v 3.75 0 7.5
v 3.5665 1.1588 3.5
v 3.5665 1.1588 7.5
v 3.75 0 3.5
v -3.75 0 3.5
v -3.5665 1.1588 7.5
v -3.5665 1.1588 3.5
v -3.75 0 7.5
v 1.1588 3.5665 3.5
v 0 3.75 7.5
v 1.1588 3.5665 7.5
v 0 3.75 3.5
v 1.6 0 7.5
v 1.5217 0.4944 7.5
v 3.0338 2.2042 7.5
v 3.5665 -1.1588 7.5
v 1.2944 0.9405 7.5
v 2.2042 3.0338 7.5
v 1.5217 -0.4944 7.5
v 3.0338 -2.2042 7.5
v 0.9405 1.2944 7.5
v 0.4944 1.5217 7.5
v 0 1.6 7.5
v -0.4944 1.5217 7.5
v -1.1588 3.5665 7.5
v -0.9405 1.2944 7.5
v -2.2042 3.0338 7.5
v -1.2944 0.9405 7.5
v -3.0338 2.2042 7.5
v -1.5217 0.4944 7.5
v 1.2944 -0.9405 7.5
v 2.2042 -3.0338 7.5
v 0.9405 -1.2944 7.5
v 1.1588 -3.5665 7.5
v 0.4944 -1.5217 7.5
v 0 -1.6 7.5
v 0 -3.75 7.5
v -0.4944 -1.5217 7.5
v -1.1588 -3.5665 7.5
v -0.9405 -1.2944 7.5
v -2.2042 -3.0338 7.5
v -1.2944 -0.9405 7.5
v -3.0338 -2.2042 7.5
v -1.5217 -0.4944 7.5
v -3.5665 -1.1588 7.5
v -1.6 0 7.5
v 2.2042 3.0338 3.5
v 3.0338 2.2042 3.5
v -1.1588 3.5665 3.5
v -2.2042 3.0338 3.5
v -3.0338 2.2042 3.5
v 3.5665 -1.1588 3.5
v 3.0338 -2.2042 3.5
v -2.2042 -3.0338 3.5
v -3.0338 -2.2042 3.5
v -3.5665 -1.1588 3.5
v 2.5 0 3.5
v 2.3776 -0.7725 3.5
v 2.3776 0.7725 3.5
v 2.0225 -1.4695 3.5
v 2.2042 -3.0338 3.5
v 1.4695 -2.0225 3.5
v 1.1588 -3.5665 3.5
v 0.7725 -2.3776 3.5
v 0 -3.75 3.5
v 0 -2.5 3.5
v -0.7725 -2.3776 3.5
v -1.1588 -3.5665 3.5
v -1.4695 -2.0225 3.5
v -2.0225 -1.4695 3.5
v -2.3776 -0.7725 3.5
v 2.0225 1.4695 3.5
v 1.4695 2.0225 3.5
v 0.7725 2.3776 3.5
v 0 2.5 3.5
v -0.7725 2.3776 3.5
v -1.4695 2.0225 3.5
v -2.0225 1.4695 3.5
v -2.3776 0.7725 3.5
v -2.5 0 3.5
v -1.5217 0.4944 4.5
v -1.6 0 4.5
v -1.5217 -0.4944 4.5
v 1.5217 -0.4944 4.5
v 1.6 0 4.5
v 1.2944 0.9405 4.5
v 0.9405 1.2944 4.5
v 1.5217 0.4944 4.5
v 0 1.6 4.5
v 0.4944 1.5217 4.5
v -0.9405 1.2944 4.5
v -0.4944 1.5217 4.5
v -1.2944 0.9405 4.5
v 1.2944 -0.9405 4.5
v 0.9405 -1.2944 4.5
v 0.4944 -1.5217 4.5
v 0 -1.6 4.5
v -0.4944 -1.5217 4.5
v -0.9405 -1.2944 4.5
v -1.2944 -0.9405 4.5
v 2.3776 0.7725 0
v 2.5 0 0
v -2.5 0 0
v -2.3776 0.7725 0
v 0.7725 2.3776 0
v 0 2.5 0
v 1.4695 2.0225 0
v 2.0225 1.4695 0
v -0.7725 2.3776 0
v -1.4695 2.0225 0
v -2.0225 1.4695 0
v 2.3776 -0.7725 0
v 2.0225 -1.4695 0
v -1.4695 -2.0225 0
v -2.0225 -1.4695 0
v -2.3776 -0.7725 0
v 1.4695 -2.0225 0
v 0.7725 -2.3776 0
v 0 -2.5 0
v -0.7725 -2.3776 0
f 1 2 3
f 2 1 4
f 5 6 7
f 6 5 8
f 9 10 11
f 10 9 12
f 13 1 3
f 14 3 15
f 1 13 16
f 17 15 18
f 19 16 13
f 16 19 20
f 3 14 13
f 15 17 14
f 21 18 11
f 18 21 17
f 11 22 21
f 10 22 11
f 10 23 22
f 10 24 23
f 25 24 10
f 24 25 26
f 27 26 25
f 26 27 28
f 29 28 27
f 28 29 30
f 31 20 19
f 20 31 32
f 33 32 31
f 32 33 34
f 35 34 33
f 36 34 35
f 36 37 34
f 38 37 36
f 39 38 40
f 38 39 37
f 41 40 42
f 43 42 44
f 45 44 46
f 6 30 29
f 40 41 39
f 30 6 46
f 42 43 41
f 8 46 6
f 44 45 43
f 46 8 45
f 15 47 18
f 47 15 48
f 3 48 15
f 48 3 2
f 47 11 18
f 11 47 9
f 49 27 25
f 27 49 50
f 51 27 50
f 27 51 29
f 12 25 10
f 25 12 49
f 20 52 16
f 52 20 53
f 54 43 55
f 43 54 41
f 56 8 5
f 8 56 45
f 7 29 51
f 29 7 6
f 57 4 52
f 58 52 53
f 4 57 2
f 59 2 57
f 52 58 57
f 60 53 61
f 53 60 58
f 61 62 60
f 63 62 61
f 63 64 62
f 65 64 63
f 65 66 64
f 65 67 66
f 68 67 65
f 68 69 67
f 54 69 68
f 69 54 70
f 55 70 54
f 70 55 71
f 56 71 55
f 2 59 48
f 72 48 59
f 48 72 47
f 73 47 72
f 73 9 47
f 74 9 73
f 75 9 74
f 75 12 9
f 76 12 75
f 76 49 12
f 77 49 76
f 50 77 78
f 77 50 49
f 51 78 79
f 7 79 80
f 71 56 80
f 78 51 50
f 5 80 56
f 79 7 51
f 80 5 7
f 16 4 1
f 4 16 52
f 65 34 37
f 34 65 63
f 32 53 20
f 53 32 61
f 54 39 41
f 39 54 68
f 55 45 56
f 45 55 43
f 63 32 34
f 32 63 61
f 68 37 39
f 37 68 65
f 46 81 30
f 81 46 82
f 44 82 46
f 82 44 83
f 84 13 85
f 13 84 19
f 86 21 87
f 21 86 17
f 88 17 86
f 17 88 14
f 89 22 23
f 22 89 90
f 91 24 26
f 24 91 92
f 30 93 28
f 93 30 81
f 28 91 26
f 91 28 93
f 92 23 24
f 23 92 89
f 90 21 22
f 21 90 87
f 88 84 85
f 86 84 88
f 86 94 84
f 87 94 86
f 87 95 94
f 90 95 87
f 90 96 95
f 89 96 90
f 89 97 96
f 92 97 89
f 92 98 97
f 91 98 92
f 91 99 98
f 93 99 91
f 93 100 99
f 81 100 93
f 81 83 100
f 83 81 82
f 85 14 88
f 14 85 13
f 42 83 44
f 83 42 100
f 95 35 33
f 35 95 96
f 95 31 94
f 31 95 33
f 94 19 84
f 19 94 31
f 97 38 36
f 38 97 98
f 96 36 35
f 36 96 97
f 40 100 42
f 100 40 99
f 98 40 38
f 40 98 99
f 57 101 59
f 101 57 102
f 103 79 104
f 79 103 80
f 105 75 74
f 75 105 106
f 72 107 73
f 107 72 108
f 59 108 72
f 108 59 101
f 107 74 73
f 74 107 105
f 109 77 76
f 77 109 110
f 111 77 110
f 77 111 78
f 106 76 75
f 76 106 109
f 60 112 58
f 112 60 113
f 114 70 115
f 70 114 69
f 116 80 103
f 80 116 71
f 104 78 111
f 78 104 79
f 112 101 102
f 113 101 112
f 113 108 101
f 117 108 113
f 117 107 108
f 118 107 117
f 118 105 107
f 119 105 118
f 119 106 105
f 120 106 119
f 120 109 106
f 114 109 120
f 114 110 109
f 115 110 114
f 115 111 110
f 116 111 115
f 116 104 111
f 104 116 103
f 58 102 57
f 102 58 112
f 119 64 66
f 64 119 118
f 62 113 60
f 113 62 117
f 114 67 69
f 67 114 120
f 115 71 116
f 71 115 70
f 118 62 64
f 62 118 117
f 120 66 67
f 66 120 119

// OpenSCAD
durchmesserAussen=7.5;
hoehe=4;

durchmesserInnen=2;
hoeheInnen=3.0;

// das ist derjenige, der den zusätzlichen Abstand bestimmt
durchmesserOben=5.0;
hoeheOben=3.5;
druckerToleranz=0.6;

$fn=20;

// 
translate([0,0,hoehe+hoeheOben])
    mirror([0,0,90]) // Damit das loch nach oben geht
        HeizungsStiftVerlaengerungsAdapter();



// ------------------------------------------    
module HeizungsStiftVerlaengerungsAdapter(){
    difference(){
        cylinder(d=durchmesserAussen,h=hoehe);
        translate([0,0,-1])
        cylinder(d=durchmesserInnen+2*druckerToleranz,h=hoeheInnen+1);
    }

    // Oberer cylinder
    translate([0,0,hoehe])
        cylinder(d=durchmesserOben,h=hoeheOben);
}
